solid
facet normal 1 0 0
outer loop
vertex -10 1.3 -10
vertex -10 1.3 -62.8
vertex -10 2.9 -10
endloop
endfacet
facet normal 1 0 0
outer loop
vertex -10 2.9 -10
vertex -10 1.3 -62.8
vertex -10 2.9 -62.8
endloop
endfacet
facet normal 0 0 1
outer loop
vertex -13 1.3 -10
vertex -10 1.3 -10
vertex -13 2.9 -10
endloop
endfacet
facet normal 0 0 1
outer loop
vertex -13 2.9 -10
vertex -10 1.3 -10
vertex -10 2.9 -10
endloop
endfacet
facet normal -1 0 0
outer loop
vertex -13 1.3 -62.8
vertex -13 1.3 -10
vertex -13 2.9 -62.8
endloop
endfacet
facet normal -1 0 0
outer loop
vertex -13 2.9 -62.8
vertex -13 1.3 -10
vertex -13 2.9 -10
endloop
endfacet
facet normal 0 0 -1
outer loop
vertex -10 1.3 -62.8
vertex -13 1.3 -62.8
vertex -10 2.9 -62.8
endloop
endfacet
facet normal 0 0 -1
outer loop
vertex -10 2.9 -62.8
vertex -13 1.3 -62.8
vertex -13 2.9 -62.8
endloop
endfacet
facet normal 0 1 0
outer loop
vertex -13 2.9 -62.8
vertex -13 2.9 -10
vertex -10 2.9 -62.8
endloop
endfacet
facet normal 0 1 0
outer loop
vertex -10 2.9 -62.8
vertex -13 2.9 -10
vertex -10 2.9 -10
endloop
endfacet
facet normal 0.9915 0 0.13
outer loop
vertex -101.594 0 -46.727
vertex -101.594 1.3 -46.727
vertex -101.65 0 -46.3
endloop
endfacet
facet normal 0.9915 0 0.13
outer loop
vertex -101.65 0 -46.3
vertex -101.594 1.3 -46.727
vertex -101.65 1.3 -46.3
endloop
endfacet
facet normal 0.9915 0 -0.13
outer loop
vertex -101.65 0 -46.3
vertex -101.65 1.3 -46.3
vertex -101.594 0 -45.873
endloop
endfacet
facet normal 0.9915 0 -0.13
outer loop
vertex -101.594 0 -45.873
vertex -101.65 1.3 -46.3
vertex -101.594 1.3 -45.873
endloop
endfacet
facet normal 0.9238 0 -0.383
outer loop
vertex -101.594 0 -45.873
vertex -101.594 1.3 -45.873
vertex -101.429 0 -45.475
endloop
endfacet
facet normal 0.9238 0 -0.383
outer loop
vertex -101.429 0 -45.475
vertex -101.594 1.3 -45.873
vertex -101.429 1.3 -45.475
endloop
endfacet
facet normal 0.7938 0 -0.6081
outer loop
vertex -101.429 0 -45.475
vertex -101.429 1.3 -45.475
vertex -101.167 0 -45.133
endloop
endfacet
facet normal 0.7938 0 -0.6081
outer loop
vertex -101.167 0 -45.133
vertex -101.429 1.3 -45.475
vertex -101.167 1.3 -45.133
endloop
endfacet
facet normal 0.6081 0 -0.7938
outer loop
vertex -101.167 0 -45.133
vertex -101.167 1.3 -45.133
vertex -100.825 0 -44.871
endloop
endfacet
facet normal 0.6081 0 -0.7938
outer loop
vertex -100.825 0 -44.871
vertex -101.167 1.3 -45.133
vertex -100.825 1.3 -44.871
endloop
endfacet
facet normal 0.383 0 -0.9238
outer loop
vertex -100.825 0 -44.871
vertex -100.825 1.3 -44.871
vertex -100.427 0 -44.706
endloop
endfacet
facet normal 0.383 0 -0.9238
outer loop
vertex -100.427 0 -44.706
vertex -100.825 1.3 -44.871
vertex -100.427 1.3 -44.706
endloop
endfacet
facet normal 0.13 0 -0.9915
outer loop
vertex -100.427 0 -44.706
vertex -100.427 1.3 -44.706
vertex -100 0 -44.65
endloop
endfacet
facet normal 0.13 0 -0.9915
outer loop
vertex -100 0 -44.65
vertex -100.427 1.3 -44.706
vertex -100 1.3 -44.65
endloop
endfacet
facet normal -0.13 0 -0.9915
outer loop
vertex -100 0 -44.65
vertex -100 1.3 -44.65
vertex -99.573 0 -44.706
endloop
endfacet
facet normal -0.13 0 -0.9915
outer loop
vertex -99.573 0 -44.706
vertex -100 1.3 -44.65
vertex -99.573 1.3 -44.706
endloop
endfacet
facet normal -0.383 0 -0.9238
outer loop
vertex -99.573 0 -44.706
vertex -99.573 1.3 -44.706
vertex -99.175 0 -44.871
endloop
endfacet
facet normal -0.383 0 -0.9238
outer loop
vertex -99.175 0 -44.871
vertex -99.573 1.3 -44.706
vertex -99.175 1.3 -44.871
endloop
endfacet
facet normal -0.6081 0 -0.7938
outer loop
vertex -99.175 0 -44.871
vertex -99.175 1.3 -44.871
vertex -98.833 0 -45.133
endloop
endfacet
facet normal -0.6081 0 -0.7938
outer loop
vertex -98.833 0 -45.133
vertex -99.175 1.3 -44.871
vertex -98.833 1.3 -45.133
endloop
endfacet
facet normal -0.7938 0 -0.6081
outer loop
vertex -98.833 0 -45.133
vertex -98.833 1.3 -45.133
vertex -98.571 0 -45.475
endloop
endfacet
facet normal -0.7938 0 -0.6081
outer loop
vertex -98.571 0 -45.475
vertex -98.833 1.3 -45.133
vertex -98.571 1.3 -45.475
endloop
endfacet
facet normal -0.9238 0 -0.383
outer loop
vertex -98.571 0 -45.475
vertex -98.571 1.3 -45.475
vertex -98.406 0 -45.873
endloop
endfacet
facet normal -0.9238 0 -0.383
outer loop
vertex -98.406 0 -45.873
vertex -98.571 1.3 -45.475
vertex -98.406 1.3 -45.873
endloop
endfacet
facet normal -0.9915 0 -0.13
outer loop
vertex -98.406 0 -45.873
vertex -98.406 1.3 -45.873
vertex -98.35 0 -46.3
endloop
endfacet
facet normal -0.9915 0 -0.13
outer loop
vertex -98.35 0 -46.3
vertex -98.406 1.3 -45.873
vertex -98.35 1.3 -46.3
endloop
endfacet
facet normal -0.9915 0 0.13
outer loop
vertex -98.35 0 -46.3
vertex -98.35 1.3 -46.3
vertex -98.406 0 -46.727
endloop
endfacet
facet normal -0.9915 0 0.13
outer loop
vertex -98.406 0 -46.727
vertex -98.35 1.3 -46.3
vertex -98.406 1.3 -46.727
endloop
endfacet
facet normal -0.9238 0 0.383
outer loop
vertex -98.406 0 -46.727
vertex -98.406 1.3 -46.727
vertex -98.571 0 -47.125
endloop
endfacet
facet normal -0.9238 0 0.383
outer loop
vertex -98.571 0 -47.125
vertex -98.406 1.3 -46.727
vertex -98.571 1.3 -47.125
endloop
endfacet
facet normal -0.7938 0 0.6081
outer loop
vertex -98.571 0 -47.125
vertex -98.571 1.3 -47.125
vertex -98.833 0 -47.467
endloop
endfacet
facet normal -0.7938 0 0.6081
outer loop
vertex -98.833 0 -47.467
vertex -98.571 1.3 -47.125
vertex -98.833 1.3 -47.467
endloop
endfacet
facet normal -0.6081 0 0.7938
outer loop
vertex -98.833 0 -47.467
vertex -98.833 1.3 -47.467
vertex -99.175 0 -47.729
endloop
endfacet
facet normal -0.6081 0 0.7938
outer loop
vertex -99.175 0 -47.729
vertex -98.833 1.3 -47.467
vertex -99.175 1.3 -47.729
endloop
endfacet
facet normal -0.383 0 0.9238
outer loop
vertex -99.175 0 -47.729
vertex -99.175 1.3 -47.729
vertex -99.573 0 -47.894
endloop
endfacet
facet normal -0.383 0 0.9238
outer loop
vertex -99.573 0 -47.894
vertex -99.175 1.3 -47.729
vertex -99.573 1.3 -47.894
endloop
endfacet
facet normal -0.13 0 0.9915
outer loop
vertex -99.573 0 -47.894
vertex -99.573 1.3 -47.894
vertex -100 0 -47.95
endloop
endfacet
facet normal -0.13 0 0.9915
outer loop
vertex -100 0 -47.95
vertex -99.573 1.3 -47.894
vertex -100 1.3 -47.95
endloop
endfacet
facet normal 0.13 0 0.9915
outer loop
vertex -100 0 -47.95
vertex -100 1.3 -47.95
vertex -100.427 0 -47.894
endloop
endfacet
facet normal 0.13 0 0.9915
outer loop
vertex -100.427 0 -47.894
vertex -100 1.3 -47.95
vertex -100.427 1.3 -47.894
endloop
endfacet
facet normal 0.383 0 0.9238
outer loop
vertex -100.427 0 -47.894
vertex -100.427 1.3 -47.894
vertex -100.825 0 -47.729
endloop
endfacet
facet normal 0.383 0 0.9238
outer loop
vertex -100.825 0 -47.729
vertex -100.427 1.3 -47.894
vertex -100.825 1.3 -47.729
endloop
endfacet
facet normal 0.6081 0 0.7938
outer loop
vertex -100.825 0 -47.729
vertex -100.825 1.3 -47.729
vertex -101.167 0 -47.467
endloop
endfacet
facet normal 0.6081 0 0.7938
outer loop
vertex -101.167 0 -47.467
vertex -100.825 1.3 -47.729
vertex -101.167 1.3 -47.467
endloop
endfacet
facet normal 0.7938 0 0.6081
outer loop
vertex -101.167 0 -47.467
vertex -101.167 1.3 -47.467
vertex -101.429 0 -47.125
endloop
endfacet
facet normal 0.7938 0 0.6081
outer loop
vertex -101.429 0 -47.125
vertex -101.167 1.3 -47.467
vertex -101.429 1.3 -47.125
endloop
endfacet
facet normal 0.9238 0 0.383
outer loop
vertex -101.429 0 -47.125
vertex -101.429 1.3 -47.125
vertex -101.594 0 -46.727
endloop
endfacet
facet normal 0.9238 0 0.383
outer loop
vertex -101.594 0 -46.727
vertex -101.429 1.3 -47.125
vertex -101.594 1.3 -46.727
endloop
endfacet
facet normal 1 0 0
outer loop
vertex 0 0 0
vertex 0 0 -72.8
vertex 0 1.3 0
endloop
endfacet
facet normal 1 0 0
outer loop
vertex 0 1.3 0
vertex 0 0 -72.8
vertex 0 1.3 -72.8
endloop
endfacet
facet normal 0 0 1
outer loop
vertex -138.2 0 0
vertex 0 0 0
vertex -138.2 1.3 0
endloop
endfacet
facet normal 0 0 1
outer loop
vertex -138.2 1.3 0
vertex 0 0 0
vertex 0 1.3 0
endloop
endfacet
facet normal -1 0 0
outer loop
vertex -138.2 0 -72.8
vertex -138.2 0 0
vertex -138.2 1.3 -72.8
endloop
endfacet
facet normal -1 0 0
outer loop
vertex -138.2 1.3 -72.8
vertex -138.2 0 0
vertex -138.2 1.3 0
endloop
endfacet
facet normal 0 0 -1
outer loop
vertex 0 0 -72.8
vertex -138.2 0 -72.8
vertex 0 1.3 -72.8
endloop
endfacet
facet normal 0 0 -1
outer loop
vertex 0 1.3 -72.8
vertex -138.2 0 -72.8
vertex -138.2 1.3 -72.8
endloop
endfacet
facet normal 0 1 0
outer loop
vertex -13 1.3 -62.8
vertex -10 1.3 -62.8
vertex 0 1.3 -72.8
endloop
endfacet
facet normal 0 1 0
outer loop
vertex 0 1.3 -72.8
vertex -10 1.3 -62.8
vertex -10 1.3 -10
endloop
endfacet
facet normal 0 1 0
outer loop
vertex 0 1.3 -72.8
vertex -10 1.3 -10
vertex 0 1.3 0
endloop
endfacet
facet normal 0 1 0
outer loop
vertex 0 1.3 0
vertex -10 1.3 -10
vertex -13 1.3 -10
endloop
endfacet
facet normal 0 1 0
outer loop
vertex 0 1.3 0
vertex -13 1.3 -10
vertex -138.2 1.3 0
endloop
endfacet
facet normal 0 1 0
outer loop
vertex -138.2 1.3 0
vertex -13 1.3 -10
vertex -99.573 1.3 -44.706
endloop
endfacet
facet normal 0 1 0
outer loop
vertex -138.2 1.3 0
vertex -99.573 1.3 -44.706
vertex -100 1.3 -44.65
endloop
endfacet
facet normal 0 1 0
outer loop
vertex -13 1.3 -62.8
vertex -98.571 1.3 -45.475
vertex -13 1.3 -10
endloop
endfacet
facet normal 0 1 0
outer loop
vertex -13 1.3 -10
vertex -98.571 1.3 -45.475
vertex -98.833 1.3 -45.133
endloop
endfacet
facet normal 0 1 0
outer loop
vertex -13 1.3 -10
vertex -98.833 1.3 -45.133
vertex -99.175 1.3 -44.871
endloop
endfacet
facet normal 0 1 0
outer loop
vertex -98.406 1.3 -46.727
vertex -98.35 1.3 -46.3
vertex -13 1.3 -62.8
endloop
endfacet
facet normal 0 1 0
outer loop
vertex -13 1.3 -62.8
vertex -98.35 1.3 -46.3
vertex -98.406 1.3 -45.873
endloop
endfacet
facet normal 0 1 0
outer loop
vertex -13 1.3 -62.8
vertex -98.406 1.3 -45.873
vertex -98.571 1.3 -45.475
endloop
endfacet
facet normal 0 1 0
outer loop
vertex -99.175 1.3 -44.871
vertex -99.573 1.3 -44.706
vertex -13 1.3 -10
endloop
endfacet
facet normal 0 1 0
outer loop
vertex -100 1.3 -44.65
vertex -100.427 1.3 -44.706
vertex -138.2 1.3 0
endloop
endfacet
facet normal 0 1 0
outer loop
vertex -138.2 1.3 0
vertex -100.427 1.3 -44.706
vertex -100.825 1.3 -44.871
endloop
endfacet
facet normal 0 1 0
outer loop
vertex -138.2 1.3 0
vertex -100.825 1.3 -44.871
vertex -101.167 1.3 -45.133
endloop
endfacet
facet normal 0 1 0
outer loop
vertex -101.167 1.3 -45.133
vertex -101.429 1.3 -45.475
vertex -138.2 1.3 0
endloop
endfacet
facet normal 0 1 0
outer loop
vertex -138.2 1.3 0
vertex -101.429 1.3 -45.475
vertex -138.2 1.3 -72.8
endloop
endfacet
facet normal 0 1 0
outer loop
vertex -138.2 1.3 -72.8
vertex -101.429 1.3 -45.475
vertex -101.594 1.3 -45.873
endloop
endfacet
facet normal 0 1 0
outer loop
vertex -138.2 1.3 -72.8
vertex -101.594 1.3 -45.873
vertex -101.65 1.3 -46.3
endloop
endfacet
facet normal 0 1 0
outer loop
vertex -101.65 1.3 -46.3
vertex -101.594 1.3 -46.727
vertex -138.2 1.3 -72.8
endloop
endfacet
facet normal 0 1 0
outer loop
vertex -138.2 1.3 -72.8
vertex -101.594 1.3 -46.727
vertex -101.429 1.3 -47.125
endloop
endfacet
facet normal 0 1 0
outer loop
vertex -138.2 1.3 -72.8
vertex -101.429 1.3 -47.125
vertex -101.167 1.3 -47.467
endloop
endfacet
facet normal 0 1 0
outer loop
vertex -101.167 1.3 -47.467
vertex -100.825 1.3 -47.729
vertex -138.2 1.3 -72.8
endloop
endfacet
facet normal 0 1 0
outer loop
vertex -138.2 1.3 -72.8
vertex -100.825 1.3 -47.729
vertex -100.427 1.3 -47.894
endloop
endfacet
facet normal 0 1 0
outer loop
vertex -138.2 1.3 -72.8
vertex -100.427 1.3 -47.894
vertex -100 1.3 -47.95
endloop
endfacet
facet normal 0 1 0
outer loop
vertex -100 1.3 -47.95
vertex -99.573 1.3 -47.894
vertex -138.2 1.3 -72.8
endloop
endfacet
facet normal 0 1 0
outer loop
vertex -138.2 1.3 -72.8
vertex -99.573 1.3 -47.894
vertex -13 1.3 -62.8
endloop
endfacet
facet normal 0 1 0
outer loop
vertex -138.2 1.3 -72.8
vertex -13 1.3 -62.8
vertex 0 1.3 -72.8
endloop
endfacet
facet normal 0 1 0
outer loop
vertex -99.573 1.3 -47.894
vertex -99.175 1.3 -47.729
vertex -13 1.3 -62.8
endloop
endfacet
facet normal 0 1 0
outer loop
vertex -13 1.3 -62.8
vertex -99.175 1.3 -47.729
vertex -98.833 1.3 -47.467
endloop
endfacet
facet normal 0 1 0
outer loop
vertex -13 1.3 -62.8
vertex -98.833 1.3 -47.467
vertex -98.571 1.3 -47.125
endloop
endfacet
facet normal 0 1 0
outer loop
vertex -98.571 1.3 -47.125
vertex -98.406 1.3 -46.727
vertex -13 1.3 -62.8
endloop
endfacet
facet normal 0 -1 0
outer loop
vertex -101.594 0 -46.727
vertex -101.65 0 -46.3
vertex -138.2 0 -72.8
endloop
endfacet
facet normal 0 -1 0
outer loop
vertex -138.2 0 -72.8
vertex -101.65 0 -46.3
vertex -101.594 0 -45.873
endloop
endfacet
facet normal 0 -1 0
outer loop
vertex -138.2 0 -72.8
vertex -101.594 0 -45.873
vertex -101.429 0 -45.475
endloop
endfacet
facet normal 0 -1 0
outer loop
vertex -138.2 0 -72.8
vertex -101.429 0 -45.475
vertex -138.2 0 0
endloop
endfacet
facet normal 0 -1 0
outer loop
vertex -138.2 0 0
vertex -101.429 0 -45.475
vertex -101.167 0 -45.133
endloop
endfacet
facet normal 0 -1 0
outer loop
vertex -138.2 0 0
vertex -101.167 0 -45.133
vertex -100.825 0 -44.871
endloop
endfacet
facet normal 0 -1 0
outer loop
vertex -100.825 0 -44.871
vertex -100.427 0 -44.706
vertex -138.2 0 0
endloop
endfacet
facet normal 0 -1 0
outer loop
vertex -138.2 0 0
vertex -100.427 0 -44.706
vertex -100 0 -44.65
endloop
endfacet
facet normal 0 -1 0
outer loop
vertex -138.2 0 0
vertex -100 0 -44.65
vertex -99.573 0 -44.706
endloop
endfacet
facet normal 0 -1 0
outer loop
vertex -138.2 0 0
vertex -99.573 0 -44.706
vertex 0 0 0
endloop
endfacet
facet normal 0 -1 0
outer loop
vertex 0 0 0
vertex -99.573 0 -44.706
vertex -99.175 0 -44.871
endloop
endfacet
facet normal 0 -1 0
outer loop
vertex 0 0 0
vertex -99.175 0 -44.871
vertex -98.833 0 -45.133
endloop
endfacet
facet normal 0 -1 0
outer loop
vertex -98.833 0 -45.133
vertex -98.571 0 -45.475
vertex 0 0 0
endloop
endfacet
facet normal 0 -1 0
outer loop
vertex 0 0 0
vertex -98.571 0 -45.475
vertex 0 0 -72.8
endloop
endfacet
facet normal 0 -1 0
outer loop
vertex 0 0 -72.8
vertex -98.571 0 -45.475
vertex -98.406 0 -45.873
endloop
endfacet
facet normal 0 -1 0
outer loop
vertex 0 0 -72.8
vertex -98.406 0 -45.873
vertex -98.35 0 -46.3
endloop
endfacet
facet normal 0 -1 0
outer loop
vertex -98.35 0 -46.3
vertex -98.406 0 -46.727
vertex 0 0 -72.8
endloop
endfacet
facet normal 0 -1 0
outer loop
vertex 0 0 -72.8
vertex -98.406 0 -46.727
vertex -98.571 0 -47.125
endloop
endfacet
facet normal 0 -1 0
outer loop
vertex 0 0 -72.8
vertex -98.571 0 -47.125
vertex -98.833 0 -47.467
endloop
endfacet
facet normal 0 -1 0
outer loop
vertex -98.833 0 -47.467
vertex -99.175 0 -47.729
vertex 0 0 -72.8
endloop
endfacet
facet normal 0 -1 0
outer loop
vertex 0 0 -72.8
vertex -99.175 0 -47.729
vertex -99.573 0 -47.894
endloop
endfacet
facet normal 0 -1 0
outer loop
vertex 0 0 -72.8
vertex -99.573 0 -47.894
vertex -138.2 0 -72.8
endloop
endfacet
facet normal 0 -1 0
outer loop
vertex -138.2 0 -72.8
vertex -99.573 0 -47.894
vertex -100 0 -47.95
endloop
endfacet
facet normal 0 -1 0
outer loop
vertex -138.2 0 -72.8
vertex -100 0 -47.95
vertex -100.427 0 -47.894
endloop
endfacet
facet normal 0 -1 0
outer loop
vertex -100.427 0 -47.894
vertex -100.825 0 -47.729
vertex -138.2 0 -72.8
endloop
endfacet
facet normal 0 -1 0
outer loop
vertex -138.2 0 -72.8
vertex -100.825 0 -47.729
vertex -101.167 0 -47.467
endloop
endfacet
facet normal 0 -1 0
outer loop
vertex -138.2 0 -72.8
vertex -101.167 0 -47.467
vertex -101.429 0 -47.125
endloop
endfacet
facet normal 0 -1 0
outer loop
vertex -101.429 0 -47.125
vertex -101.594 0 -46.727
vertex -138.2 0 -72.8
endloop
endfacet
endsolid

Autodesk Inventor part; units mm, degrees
ref_plane "YZ Plane" through (0, 0, 0) normal (1, 0, 0) x (0, 1, 0)
ref_plane "XZ Plane" through (0, 0, 0) normal (0, 1, 0) x (-1, 0, 0)
ref_plane "XY Plane" through (0, 0, 0) normal (0, 0, 1) x (1, 0, 0)
sketch "Sketch1" plane through (0, 0, 0) normal (0, 1, 0) x (-1, 0, 0)
  line L0 (0, 0) -> (138.2, 0)
  line L1 (138.2, 0) -> (138.2, -72.8)
  line L2 (138.2, -72.8) -> (0, -72.8)
  line L3 (0, -72.8) -> (0, 0)
  dimension "d0" = 138.2
  dimension "d1" = 72.8
extrude "Extrusion1" add sketch "Sketch1" along normal blind 1.3
sketch "Sketch2" plane through (0, 1.3, 0) normal (0, 1, 0) x (1, 0, 0)
  line L0 (0, 72.8) -> (-138.2, 72.8) projected
  line L1 (0, 72.8) -> (-100, 72.8)
  line L2 (-100, 72.8) -> (-100, 46.3)
  circle A0 centre (-100, 46.3) radius 1.65
  point P0 (0, 0)
  dimension "d4" = 100
  dimension "d5" = 26.5
  dimension "d6" = 3.3
extrude "Extrusion2" cut sketch "Sketch2" against normal through all
sketch "Sketch3" plane through (0, 1.3, 0) normal (0, 1, 0) x (1, 0, 0)
  line L0 (-138.2, 0) -> (0, 0) projected
  line L1 (0, 0) -> (0, 10)
  line L2 (0, 0) -> (0, 72.8) projected
  line L3 (0, 10) -> (-10, 10)
  line L4 (0, 72.8) -> (0, 62.8)
  line L5 (0, 62.8) -> (-10, 62.8)
  line L6 (-10, 10) -> (-13, 10)
  line L7 (-13, 10) -> (-13, 62.8)
  line L8 (-13, 62.8) -> (-10, 62.8)
  line L9 (-10, 62.8) -> (-10, 10)
  dimension "d9" = 10
  dimension "d10" = 10
  dimension "d11" = 10
  dimension "d12" = 10
  dimension "d13" = 3
extrude "Extrusion3" add sketch "Sketch3" along normal blind 1.6 contours L6 L7 L8 L9
properties part number "Lid_3DPrint"
